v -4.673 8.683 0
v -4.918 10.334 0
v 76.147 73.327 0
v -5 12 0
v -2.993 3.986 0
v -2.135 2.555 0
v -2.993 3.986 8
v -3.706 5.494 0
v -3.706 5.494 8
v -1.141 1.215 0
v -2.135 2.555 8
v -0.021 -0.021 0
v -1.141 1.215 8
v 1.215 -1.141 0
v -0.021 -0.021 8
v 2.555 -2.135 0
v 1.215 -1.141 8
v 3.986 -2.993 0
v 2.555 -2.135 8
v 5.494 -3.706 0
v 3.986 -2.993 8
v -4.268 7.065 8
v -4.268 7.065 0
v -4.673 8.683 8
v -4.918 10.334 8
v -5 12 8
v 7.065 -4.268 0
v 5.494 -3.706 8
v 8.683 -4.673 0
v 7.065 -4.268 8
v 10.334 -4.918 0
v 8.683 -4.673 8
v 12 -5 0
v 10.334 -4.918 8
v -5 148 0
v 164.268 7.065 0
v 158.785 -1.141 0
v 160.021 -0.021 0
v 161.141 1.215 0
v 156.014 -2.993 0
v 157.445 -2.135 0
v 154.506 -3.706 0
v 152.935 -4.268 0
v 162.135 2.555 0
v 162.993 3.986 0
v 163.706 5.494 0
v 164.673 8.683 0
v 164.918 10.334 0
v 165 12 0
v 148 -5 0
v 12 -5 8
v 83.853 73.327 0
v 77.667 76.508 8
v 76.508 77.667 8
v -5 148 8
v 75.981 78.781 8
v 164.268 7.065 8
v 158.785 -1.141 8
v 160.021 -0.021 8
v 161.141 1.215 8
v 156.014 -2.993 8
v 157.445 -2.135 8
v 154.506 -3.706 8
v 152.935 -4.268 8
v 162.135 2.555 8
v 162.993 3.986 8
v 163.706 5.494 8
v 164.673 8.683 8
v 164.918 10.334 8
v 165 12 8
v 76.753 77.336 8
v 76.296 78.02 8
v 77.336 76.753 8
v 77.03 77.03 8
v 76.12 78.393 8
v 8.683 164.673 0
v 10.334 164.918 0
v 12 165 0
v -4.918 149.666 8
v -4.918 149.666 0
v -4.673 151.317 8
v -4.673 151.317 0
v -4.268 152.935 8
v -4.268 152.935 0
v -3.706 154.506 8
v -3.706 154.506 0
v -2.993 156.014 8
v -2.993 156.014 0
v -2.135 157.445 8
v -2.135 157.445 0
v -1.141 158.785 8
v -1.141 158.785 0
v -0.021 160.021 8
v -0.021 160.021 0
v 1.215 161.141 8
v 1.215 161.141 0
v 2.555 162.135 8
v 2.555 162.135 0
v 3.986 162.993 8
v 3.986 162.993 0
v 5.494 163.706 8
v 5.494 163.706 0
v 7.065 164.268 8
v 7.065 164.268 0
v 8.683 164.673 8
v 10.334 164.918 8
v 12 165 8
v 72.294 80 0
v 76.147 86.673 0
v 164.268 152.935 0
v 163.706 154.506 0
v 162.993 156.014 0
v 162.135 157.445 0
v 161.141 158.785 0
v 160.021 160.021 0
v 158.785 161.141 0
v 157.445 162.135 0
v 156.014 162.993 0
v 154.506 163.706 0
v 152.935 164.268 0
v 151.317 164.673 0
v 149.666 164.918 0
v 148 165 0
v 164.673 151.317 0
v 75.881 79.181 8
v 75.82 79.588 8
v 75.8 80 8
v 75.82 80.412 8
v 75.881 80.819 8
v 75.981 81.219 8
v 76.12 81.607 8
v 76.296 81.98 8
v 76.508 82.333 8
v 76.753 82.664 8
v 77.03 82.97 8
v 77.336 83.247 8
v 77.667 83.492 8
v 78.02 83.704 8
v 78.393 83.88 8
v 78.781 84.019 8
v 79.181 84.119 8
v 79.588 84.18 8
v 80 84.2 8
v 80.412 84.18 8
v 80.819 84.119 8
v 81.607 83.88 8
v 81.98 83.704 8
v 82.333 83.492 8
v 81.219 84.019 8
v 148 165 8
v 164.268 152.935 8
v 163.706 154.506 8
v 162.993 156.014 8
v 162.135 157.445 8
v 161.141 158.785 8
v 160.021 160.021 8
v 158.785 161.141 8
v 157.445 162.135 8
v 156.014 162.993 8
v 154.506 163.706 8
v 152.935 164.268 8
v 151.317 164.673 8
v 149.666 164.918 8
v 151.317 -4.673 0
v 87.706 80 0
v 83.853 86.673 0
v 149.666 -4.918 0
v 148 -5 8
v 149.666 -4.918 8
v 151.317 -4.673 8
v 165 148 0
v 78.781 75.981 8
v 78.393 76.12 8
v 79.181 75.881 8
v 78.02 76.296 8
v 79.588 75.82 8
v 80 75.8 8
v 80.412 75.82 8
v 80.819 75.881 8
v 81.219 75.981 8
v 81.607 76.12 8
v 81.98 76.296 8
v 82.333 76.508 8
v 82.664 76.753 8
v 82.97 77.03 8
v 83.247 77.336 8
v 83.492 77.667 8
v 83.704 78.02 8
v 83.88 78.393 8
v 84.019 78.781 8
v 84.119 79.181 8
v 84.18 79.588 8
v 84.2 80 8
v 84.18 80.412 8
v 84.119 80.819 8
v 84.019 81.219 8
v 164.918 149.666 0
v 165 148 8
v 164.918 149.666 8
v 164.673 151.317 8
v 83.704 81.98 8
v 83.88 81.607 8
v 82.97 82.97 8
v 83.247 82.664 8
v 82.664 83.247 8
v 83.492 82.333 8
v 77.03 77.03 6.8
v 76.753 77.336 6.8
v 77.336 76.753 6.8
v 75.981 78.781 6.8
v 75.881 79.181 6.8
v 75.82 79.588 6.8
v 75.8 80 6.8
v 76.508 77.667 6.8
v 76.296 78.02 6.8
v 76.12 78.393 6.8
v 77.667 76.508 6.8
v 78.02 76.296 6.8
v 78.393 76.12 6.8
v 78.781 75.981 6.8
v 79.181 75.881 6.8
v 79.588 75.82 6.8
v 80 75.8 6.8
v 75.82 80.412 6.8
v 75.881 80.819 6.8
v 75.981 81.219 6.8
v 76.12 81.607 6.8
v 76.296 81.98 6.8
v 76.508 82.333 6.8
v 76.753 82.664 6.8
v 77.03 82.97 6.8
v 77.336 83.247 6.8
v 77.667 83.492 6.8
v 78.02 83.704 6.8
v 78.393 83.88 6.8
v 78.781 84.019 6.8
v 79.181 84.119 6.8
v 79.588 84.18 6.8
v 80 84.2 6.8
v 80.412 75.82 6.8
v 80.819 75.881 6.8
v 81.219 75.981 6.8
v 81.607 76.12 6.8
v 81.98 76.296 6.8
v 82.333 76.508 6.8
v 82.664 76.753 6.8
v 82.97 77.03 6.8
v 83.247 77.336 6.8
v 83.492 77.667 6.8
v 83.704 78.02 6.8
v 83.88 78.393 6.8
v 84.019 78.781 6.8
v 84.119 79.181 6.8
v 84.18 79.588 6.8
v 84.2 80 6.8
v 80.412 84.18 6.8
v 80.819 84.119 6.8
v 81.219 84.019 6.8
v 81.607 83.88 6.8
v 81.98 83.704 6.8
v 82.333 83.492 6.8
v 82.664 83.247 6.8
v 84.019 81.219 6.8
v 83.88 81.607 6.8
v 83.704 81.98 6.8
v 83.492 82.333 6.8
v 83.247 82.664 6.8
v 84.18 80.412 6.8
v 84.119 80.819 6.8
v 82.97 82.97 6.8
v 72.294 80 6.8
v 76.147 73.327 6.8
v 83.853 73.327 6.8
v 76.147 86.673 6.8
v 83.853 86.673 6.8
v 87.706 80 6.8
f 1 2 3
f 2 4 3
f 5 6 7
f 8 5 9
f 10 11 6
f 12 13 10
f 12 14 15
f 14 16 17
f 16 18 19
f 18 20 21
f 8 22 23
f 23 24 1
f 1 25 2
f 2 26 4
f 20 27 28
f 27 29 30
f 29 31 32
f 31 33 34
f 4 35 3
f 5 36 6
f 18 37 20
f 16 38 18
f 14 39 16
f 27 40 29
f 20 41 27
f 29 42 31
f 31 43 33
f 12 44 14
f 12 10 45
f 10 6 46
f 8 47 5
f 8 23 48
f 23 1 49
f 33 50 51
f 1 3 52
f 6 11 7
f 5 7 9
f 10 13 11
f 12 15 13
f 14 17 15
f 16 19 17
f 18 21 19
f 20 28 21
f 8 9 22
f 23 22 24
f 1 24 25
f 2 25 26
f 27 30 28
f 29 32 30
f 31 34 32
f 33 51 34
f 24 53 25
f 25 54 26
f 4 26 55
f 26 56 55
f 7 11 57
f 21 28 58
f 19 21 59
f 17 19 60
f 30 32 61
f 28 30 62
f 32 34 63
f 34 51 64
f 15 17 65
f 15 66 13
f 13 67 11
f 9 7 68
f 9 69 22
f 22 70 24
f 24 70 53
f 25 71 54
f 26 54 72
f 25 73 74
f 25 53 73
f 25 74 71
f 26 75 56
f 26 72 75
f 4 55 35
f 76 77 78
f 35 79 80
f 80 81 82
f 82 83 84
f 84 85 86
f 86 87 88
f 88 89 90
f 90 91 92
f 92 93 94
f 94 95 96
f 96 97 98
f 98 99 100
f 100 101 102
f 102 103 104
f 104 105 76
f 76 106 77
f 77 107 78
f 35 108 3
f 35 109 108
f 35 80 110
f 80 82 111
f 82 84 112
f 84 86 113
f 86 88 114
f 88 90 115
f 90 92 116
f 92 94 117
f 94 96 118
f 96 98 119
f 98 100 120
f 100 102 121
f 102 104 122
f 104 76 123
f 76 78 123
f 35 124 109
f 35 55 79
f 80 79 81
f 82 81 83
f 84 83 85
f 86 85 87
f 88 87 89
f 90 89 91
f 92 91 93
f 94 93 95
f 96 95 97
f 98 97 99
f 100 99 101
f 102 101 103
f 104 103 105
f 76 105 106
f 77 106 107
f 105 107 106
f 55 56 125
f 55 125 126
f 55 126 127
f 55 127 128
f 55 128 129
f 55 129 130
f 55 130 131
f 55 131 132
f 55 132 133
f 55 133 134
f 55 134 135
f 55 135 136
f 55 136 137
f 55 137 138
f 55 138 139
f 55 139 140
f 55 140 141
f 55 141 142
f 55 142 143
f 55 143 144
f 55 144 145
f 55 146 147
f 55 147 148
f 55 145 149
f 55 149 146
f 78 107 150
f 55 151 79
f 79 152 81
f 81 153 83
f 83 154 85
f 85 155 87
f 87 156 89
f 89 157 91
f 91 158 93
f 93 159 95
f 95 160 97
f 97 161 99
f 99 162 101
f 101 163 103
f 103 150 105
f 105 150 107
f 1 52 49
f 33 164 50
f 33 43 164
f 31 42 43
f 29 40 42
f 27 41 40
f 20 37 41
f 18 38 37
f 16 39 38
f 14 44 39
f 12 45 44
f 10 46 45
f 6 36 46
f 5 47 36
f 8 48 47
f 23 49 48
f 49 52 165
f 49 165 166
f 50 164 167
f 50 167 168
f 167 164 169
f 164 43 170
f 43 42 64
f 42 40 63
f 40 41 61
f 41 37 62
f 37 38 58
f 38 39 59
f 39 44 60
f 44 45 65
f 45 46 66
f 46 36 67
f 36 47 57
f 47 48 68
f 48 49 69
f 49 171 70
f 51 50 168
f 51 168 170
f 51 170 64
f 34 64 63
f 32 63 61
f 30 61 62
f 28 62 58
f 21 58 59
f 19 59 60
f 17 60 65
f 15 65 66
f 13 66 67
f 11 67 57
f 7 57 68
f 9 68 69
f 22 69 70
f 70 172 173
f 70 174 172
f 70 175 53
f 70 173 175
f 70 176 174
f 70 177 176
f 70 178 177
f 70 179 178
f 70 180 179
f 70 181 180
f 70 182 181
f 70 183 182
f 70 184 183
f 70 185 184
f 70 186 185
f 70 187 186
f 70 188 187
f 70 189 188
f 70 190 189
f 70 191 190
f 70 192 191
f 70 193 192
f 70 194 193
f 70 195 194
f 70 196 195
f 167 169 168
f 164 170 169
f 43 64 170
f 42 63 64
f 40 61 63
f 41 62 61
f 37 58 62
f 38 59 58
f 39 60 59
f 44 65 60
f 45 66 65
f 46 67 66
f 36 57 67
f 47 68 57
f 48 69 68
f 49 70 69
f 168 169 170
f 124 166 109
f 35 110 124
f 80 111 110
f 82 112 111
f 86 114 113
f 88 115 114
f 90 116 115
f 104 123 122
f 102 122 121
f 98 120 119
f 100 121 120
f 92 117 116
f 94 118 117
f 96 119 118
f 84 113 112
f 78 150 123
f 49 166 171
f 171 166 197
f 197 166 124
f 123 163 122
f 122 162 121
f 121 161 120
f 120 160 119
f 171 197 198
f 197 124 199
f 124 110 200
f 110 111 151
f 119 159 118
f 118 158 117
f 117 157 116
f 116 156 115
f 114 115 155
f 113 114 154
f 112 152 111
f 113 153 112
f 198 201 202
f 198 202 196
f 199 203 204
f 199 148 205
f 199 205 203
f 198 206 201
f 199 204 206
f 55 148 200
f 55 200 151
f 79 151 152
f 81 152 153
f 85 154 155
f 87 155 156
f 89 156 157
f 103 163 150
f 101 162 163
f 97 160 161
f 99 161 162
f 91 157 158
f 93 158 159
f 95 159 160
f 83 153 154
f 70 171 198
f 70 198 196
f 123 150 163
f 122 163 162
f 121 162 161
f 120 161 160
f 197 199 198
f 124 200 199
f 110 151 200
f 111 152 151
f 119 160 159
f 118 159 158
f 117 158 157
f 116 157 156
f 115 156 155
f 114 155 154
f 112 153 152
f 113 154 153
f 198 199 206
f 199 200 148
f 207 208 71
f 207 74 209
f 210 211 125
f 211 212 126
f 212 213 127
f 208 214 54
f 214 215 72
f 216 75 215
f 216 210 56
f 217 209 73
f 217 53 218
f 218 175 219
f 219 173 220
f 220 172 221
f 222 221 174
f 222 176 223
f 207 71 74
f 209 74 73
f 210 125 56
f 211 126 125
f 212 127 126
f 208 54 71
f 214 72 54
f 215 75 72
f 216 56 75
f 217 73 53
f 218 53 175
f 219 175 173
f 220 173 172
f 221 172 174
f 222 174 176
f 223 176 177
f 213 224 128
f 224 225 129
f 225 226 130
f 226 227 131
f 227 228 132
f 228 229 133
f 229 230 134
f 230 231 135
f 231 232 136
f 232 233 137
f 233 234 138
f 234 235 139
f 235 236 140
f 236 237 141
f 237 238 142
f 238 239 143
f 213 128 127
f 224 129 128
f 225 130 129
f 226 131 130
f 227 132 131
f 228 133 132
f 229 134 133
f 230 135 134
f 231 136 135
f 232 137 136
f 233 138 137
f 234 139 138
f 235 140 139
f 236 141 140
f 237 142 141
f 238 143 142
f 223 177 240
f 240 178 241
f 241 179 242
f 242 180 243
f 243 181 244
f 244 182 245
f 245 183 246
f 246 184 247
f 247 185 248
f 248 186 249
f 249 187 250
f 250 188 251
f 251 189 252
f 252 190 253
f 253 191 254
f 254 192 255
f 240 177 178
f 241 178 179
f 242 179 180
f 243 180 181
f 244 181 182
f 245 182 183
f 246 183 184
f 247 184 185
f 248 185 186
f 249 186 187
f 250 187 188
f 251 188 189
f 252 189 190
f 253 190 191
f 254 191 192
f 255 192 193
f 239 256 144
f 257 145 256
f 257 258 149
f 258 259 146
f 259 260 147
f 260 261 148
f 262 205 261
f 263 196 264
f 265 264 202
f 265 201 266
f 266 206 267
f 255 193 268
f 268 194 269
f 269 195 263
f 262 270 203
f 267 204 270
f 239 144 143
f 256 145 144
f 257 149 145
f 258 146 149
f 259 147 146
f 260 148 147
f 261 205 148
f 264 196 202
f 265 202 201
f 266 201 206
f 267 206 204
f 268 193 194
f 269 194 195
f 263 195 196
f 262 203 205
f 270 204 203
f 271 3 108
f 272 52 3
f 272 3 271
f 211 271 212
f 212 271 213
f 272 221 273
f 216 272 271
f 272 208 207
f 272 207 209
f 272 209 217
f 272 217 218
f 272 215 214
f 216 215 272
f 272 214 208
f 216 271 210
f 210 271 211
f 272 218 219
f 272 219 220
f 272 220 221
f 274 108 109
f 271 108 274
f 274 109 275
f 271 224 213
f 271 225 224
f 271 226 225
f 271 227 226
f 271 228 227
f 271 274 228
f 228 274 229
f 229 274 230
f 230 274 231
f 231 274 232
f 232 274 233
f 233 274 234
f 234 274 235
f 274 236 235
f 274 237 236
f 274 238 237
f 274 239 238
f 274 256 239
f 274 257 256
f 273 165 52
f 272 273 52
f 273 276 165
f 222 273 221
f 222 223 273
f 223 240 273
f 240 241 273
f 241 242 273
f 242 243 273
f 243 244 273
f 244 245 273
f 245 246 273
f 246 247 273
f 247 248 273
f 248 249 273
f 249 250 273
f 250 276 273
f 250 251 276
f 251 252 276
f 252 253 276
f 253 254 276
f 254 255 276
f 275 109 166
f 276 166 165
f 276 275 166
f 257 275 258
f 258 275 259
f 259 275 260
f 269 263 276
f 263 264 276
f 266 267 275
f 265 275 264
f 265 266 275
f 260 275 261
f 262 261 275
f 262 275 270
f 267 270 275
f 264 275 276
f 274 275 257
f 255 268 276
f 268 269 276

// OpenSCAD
// file: common.scad
// cablemess: shared parameters (mm). Every part includes this file.
// Change a number here and every part follows; rebuild with ../build.sh.
$fn = 64;
eps = 0.01;

// --- trays (one cable each) -------------------------------------------------
page_t     = 20;    // stacking pitch: one tray, floor to floor
plate_t    = 3;     // tray floor
clear_z    = 0.8;   // air gap between trays (walls stop this short of the next floor)
tray       = 160;   // trays are square; 160 fits a 220 mm bed with room to spare
corner_r   = 12;

// --- spine ------------------------------------------------------------------
rod_d      = 8;     // M8 studding, cut to length: N * page_t + 8 (base) + ~55 (handle)
rod_fit    = 0.4;   // hole = rod_d + rod_fit
nut_af     = 13;    // M8 nut across flats
nut_t      = 6.8;   // M8 nut thickness (+ a little)
nut_fit    = 0.4;

// --- cable winding (three posts: peg, centre boss, peg, all the same diameter) --
boss_d     = 26;    // centre boss = tray spacer = the middle post
peg_d      = 26;
peg_dx     = 47;    // peg centres sit this far either side of the middle
cap_flare  = 6;     // cap is this much wider than the peg (45 degree cone, prints without support)
cap_cone   = 3;
cap_flat   = 1.2;

// --- connector holders (top/back edge) -----------------------------------------
holder_w   = 40;
holder_y   = 110;   // front of the holder block
holder_dx  = 30;    // holder centres sit this far either side of the middle
conn_w     = 22;    // pocket for the plug: USB-A/C, micro, HDMI. Test with the coupon.
neck_w     = 8;     // slot the cable leaves through

// --- length marker (front face) -------------------------------------------------
front_wall = 14;
pin_d      = 4;     // marker pin shaft
pin_fit    = 0.3;   // hole = pin_d + pin_fit
mark_x0    = 16;
mark_pitch = 8;
mark_n     = 12;    // 12 holes x 25 cm = up to 3 m
mark_cm    = 25;

module outline(s = tray, r = corner_r) offset(r = r) offset(delta = -r) square(s);
mid = tray / 2;
// main file
// Foot: the rod's lower nut sits in the hex pocket underneath.
include <common.scad>
base_t = 8;
difference() {
  translate([-5, -5, 0]) linear_extrude(base_t) outline(tray + 10, corner_r + 5);
  translate([mid, mid, -1]) cylinder(d = rod_d + rod_fit, h = base_t + 2);
  translate([mid, mid, -eps]) cylinder(d = nut_af / cos(30) + nut_fit, h = nut_t + eps, $fn = 6);
}
